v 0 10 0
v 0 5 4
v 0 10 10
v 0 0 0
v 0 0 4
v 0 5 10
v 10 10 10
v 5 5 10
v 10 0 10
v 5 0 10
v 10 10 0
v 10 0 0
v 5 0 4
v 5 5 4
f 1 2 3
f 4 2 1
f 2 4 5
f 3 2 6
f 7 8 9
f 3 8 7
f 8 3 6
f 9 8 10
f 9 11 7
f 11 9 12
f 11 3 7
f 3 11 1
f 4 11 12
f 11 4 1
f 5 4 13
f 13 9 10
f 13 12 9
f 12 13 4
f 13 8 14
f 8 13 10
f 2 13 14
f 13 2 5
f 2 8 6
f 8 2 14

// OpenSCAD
difference() {
  cube([10,10,10]);
  translate([-5,-5,4]) cube([10,10,10]);
}
